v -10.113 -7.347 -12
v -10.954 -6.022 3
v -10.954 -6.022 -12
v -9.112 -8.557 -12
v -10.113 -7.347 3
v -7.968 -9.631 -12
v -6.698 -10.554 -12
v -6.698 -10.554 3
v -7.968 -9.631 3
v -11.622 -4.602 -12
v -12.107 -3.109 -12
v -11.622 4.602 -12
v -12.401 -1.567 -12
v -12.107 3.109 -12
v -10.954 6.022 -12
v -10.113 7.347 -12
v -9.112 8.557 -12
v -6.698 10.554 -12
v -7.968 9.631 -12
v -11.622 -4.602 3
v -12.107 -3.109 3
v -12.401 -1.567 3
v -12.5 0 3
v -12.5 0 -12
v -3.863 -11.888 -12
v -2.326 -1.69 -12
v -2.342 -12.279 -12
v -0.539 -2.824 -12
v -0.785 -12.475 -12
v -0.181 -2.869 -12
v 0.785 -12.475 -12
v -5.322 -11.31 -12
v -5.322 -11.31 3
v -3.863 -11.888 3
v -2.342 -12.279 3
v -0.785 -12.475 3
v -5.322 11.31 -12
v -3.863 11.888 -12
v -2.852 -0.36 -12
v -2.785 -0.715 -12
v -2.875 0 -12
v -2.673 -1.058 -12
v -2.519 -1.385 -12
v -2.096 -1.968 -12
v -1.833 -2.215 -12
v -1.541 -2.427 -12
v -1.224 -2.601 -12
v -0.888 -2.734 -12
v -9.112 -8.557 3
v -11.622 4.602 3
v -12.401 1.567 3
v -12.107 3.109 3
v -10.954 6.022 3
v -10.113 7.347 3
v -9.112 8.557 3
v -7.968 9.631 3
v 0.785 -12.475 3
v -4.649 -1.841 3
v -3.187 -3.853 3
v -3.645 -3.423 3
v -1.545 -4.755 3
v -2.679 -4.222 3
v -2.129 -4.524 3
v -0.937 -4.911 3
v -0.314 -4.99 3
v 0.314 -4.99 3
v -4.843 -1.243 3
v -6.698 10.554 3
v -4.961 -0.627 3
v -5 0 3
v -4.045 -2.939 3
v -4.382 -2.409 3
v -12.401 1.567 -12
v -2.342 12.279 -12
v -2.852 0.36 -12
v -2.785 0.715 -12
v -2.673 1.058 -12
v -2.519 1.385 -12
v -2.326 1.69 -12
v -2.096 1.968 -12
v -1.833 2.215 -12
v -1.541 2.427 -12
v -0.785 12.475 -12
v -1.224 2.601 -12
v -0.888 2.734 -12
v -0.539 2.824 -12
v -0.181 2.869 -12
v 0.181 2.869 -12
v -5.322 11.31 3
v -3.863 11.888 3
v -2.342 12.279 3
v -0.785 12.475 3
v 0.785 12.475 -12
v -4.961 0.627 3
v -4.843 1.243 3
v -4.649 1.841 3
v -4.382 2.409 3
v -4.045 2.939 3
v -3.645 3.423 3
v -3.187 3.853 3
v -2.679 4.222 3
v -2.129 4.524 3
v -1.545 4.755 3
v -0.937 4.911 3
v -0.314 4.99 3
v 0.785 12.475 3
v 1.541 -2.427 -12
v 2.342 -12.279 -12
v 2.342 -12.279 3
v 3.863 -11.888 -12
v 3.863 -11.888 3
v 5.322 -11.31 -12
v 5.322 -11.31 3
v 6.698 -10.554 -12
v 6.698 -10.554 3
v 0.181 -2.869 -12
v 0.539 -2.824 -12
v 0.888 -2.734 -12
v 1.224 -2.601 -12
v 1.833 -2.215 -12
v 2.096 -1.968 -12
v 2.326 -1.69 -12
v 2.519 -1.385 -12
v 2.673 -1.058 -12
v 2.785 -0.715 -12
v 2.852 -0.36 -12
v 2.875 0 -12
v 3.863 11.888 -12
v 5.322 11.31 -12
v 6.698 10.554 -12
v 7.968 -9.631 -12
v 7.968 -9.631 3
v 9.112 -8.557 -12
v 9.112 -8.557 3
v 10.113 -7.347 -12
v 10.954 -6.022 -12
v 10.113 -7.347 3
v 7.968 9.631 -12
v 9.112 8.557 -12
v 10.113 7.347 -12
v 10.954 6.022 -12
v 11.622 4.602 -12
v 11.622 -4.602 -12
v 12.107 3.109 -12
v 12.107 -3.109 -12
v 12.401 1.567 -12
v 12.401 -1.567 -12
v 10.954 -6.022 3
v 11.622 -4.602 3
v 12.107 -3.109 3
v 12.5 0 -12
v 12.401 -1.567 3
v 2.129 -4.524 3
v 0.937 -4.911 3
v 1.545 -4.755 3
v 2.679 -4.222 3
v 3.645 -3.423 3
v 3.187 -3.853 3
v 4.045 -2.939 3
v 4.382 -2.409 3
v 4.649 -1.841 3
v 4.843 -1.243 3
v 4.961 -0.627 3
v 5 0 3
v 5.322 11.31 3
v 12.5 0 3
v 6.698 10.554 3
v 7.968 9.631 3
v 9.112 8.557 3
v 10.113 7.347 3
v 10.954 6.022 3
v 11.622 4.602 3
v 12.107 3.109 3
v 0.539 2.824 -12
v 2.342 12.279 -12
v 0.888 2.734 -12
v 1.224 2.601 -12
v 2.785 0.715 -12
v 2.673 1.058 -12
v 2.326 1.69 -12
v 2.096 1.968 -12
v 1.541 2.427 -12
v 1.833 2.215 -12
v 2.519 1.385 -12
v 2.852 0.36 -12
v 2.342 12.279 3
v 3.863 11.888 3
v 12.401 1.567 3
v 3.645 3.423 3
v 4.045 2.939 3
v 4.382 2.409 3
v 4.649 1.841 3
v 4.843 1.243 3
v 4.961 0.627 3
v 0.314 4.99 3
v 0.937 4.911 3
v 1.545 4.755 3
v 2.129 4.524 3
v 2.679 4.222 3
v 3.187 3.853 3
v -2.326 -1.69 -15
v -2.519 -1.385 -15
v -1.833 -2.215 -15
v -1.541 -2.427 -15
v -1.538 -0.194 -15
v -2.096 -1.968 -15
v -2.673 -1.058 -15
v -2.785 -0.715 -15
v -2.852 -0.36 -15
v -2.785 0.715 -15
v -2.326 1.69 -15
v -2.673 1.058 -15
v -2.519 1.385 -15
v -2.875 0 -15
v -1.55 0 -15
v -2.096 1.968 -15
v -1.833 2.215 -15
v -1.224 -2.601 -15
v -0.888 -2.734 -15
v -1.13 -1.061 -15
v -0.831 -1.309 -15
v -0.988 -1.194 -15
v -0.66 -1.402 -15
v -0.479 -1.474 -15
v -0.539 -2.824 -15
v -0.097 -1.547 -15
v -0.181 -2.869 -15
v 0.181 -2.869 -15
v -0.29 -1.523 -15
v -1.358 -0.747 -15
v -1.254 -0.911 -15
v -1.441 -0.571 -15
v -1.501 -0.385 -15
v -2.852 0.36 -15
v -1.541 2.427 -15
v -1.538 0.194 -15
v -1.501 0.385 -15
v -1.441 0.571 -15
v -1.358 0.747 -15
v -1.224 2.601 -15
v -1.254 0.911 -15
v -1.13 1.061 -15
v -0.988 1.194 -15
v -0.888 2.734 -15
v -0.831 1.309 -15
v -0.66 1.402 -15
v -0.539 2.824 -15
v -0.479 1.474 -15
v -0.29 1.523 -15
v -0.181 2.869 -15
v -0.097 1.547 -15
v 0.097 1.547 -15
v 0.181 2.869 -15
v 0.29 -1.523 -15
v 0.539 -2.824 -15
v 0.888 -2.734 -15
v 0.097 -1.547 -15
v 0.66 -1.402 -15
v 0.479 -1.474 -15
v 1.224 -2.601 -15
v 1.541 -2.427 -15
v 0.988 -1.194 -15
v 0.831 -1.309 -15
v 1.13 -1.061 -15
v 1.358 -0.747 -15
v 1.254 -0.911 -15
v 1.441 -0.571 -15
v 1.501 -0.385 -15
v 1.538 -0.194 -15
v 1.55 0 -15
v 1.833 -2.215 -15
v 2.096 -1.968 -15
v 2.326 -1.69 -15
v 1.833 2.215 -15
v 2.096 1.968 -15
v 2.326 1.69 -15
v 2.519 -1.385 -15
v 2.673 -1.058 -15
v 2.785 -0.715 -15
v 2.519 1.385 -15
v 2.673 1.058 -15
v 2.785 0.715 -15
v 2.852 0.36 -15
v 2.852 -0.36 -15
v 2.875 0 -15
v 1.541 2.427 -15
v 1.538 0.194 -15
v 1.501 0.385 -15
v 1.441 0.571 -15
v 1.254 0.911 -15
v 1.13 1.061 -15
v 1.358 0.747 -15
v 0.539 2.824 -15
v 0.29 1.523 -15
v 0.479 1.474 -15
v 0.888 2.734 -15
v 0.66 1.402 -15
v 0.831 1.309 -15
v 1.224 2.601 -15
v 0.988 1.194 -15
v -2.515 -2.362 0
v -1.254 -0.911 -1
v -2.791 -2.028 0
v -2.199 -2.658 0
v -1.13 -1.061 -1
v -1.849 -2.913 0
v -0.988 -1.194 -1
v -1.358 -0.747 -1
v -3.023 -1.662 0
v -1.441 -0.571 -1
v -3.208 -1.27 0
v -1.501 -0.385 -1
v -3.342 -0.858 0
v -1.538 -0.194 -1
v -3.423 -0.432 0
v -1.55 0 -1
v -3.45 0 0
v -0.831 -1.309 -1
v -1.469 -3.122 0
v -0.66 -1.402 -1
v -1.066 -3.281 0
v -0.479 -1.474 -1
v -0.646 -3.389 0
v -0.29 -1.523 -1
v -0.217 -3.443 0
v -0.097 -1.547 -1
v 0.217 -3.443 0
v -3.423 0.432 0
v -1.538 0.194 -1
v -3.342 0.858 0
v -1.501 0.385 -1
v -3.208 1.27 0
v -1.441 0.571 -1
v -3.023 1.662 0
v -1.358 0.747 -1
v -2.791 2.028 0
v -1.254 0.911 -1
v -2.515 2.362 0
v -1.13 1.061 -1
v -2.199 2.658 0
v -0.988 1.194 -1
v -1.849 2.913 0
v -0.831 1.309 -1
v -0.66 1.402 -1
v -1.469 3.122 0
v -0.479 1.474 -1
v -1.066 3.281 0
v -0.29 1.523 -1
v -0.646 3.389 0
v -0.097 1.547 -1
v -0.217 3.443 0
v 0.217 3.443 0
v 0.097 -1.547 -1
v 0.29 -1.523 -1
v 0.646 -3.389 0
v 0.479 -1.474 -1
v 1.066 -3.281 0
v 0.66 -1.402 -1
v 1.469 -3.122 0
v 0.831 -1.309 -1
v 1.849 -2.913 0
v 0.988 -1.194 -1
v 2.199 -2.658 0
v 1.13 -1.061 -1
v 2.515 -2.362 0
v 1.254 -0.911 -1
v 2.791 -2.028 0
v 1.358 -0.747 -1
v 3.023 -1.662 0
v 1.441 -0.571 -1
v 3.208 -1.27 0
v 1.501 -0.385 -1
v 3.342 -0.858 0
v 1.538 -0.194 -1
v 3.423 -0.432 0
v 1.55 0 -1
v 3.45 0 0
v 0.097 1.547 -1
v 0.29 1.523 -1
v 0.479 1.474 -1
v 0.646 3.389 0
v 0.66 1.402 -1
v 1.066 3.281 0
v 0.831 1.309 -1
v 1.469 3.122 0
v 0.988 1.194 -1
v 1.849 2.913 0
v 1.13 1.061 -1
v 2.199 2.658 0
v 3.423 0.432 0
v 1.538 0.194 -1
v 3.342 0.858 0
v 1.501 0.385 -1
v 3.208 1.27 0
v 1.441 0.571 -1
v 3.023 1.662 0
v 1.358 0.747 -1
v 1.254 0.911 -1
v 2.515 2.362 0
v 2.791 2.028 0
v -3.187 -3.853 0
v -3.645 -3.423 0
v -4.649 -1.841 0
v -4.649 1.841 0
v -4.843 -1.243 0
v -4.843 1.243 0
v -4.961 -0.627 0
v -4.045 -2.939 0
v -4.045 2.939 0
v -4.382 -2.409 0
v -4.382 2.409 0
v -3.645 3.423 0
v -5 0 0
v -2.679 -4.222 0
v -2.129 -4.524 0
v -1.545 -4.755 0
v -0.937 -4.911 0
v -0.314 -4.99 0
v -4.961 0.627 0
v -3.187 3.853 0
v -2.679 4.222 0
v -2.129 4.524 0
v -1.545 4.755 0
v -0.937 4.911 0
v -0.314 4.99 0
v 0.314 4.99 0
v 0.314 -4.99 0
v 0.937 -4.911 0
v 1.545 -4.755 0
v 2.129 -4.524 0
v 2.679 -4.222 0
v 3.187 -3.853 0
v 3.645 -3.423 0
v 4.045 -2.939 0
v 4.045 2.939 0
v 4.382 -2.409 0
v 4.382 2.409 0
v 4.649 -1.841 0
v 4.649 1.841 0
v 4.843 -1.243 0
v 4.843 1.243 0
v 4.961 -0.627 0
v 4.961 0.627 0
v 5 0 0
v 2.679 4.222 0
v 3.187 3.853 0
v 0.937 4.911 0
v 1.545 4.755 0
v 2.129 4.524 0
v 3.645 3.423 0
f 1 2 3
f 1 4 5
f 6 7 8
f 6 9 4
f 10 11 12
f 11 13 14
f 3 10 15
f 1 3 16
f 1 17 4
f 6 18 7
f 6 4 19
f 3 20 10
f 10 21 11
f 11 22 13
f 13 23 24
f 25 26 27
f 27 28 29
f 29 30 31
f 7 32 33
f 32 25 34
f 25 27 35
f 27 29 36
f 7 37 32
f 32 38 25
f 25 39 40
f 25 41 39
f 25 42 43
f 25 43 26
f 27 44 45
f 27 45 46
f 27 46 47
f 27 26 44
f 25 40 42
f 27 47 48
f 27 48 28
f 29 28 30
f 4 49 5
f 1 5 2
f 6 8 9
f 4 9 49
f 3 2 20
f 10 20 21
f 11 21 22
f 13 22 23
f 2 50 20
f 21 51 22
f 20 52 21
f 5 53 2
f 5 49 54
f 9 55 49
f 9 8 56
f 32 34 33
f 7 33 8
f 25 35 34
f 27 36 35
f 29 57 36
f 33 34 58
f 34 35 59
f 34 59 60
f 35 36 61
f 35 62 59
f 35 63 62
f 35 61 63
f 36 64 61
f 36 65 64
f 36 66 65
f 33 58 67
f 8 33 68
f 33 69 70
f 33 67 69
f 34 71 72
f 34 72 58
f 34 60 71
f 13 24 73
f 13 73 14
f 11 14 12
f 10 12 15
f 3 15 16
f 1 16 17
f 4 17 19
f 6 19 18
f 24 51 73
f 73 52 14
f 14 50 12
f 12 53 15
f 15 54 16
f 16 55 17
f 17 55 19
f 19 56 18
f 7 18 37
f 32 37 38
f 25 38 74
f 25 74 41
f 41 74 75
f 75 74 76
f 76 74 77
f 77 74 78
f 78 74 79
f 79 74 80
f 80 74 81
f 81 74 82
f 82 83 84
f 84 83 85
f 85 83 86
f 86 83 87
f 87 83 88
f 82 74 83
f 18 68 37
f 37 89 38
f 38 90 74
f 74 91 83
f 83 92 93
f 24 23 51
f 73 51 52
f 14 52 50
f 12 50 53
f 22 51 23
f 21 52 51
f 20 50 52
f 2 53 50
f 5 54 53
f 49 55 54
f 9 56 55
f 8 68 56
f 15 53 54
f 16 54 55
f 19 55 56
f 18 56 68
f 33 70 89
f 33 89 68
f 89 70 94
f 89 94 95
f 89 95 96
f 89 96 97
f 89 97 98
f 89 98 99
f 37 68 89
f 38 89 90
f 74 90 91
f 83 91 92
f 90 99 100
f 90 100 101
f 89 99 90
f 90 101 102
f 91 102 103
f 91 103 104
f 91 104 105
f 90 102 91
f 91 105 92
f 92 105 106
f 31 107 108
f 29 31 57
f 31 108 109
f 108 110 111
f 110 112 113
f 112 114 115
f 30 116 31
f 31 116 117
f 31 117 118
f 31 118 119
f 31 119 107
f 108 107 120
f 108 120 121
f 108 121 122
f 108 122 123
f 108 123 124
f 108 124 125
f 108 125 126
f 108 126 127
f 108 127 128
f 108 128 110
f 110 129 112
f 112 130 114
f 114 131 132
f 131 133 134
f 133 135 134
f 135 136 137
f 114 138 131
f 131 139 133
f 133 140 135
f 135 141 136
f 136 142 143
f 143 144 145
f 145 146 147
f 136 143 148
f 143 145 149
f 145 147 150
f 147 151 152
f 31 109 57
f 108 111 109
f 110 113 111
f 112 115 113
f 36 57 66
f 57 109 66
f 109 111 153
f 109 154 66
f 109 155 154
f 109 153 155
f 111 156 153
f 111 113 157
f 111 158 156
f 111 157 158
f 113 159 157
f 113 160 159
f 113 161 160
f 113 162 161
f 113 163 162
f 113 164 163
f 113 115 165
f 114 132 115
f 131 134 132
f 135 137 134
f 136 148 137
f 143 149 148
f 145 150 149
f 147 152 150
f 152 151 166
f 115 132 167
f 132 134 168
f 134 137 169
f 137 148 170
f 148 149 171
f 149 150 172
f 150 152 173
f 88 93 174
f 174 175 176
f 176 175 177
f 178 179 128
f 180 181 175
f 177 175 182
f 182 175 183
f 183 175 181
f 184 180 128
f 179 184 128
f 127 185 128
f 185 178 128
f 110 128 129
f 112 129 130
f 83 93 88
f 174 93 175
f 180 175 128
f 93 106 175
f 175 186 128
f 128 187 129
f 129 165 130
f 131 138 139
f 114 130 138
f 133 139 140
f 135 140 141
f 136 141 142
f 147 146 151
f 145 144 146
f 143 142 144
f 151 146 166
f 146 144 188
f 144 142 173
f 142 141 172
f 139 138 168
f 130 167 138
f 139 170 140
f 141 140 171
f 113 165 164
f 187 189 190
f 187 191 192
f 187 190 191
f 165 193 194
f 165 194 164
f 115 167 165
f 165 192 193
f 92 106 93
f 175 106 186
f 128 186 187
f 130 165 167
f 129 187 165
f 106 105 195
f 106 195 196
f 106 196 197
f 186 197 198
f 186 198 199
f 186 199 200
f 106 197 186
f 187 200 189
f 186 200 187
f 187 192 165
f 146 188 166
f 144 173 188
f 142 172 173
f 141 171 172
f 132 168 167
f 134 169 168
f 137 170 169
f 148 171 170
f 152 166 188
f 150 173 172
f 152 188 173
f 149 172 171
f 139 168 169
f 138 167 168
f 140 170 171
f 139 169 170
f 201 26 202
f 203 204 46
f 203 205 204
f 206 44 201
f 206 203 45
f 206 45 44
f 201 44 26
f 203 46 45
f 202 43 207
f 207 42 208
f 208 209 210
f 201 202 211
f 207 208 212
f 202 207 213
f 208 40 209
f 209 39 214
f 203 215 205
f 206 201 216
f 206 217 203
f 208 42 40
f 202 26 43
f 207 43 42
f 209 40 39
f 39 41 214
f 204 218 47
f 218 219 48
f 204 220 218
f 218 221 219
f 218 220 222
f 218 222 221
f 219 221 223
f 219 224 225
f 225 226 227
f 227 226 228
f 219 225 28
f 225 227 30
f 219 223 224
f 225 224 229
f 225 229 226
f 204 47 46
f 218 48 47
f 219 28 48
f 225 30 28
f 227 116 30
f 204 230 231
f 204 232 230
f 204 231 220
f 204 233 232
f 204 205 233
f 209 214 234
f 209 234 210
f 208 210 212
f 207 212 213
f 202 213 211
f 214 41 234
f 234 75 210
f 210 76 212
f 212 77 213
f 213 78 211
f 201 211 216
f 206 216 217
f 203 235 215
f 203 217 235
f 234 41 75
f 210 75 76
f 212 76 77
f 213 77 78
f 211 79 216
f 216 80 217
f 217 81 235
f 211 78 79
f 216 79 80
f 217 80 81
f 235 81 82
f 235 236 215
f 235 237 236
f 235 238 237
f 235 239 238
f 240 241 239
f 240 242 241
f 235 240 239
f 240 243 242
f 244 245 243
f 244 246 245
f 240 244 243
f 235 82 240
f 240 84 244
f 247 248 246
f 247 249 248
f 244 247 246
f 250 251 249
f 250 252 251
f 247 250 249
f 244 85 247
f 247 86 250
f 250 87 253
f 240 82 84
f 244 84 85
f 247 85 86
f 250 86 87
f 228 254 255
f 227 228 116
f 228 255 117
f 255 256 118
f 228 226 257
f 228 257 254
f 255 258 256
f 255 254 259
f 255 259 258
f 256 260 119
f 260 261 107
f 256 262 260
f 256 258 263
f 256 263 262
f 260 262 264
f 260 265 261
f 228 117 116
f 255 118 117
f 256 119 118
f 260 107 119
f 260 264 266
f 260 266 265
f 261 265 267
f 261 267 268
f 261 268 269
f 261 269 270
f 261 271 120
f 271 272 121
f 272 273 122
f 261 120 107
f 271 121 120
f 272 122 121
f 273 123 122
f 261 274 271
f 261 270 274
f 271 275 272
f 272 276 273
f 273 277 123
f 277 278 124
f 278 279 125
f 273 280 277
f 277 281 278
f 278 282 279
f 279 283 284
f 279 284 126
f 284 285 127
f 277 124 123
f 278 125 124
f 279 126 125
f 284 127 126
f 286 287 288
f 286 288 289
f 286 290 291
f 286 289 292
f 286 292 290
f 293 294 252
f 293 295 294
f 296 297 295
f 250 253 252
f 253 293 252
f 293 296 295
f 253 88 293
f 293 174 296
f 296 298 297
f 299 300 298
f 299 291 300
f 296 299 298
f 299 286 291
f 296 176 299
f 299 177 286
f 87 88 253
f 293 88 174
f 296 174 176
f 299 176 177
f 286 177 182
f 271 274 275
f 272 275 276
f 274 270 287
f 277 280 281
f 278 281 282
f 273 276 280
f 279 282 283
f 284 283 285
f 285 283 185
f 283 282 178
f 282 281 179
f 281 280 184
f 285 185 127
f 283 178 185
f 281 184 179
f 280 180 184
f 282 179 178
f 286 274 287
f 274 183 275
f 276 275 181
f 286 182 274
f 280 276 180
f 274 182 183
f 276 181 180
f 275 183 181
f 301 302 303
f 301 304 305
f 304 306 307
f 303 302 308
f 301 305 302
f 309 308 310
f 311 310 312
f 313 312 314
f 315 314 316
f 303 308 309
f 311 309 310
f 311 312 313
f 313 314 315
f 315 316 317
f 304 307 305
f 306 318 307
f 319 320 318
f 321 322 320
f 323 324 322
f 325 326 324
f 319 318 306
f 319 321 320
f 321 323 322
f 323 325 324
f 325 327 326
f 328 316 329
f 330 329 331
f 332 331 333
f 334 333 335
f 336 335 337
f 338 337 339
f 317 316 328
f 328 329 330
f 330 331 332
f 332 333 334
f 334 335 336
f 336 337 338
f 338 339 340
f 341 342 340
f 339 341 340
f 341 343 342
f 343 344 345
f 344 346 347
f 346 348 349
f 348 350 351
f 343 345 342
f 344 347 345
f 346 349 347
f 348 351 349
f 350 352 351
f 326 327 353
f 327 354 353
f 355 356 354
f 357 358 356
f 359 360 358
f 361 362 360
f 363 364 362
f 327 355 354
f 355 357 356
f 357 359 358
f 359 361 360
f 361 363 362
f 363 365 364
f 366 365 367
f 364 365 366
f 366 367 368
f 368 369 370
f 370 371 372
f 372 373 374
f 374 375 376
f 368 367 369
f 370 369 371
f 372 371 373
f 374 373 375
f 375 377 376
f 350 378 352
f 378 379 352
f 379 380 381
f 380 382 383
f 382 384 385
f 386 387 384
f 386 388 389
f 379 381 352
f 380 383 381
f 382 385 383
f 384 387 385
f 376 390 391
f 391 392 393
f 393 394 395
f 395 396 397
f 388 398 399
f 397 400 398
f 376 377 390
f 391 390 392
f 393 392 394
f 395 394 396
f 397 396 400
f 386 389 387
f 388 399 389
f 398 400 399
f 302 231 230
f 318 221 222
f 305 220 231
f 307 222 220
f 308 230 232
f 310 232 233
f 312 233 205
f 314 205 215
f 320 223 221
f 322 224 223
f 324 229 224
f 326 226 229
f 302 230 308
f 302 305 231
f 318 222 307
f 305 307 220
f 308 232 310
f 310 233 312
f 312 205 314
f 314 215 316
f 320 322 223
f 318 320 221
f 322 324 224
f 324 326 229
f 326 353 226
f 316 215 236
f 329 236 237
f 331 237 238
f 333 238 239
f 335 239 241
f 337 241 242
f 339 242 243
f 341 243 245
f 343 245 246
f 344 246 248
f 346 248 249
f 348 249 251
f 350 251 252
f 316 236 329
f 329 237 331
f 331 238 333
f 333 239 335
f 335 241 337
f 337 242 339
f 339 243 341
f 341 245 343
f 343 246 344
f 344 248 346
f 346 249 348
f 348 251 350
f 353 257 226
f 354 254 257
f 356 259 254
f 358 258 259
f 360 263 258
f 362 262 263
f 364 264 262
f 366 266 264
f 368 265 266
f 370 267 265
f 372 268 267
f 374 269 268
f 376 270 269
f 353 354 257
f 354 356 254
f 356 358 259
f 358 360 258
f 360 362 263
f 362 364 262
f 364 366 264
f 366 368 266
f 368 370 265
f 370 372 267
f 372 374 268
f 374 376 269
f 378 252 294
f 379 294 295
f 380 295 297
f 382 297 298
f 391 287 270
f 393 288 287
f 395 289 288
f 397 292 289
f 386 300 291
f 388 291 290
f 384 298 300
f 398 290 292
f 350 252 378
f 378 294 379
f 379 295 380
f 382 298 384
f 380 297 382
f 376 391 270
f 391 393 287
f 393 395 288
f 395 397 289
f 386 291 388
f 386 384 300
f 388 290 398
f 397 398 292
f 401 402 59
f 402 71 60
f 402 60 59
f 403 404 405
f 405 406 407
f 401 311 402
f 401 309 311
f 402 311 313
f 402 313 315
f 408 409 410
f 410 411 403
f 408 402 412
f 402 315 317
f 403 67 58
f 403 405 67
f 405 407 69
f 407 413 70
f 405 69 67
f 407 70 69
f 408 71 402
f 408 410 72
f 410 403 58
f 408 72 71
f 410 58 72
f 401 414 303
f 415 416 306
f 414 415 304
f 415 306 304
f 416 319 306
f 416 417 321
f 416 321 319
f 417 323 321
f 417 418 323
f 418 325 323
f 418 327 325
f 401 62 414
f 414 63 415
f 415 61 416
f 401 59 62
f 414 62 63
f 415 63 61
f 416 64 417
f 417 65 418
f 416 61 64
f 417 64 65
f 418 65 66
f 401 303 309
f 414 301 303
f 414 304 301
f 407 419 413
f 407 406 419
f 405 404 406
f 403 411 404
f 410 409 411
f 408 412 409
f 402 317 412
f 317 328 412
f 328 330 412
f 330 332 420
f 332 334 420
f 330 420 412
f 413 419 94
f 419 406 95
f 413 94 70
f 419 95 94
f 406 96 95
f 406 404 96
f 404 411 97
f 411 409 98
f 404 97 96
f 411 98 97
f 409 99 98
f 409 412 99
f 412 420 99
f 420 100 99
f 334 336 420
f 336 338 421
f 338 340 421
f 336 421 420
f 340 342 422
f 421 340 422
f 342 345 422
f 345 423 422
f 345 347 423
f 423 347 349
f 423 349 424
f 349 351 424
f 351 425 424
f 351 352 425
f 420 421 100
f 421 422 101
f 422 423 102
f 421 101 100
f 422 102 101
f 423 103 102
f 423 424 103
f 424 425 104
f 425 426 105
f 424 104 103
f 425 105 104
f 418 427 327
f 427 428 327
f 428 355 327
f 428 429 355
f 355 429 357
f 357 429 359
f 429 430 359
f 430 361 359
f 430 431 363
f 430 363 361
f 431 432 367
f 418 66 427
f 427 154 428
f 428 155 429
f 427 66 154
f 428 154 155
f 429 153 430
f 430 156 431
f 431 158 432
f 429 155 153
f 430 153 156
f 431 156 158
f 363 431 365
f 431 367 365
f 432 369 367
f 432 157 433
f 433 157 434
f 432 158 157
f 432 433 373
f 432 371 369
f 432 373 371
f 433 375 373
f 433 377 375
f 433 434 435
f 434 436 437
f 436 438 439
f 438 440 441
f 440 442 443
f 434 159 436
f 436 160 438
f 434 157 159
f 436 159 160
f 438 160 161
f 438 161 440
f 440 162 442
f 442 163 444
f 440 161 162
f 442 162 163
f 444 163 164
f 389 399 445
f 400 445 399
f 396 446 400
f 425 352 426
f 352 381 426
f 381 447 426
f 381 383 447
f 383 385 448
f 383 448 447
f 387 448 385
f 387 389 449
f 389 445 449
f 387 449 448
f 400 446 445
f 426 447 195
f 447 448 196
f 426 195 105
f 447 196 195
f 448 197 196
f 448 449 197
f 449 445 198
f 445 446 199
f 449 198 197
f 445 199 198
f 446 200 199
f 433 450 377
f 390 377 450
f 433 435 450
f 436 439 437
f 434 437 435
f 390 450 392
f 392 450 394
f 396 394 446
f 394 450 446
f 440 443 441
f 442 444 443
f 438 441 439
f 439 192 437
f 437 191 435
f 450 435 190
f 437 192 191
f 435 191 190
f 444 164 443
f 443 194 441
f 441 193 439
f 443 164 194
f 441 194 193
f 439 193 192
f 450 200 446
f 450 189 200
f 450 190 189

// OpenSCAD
$fn = 50;

difference() {
	union() {
		translate(v = [0, 0, -12.0]) {
			cylinder(h = 15, r = 12.5);
		}
		#translate(v = [0, 0, -15.0]) {
			cylinder(h = 15, r = 2.875);
		}
	}
	union() {
		translate(v = [0, 0, 0]) {
			rotate(a = [0, 0, 0]) {
				difference() {
					union() {
						translate(v = [0, 0, -15.0]) {
							cylinder(h = 15, r = 1.25);
						}
						translate(v = [0, 0, -1.0]) {
							cylinder(h = 1.0, r1 = 1.55, r2 = 3.45);
						}
						translate(v = [0, 0, -15.0]) {
							cylinder(h = 15, r = 1.55);
						}
						translate(v = [0, 0, -15.0]) {
							cylinder(h = 15, r = 1.25);
						}
					}
					union();
				}
			}
		}
		#cylinder(h = 3, r = 5.0);
	}
}
